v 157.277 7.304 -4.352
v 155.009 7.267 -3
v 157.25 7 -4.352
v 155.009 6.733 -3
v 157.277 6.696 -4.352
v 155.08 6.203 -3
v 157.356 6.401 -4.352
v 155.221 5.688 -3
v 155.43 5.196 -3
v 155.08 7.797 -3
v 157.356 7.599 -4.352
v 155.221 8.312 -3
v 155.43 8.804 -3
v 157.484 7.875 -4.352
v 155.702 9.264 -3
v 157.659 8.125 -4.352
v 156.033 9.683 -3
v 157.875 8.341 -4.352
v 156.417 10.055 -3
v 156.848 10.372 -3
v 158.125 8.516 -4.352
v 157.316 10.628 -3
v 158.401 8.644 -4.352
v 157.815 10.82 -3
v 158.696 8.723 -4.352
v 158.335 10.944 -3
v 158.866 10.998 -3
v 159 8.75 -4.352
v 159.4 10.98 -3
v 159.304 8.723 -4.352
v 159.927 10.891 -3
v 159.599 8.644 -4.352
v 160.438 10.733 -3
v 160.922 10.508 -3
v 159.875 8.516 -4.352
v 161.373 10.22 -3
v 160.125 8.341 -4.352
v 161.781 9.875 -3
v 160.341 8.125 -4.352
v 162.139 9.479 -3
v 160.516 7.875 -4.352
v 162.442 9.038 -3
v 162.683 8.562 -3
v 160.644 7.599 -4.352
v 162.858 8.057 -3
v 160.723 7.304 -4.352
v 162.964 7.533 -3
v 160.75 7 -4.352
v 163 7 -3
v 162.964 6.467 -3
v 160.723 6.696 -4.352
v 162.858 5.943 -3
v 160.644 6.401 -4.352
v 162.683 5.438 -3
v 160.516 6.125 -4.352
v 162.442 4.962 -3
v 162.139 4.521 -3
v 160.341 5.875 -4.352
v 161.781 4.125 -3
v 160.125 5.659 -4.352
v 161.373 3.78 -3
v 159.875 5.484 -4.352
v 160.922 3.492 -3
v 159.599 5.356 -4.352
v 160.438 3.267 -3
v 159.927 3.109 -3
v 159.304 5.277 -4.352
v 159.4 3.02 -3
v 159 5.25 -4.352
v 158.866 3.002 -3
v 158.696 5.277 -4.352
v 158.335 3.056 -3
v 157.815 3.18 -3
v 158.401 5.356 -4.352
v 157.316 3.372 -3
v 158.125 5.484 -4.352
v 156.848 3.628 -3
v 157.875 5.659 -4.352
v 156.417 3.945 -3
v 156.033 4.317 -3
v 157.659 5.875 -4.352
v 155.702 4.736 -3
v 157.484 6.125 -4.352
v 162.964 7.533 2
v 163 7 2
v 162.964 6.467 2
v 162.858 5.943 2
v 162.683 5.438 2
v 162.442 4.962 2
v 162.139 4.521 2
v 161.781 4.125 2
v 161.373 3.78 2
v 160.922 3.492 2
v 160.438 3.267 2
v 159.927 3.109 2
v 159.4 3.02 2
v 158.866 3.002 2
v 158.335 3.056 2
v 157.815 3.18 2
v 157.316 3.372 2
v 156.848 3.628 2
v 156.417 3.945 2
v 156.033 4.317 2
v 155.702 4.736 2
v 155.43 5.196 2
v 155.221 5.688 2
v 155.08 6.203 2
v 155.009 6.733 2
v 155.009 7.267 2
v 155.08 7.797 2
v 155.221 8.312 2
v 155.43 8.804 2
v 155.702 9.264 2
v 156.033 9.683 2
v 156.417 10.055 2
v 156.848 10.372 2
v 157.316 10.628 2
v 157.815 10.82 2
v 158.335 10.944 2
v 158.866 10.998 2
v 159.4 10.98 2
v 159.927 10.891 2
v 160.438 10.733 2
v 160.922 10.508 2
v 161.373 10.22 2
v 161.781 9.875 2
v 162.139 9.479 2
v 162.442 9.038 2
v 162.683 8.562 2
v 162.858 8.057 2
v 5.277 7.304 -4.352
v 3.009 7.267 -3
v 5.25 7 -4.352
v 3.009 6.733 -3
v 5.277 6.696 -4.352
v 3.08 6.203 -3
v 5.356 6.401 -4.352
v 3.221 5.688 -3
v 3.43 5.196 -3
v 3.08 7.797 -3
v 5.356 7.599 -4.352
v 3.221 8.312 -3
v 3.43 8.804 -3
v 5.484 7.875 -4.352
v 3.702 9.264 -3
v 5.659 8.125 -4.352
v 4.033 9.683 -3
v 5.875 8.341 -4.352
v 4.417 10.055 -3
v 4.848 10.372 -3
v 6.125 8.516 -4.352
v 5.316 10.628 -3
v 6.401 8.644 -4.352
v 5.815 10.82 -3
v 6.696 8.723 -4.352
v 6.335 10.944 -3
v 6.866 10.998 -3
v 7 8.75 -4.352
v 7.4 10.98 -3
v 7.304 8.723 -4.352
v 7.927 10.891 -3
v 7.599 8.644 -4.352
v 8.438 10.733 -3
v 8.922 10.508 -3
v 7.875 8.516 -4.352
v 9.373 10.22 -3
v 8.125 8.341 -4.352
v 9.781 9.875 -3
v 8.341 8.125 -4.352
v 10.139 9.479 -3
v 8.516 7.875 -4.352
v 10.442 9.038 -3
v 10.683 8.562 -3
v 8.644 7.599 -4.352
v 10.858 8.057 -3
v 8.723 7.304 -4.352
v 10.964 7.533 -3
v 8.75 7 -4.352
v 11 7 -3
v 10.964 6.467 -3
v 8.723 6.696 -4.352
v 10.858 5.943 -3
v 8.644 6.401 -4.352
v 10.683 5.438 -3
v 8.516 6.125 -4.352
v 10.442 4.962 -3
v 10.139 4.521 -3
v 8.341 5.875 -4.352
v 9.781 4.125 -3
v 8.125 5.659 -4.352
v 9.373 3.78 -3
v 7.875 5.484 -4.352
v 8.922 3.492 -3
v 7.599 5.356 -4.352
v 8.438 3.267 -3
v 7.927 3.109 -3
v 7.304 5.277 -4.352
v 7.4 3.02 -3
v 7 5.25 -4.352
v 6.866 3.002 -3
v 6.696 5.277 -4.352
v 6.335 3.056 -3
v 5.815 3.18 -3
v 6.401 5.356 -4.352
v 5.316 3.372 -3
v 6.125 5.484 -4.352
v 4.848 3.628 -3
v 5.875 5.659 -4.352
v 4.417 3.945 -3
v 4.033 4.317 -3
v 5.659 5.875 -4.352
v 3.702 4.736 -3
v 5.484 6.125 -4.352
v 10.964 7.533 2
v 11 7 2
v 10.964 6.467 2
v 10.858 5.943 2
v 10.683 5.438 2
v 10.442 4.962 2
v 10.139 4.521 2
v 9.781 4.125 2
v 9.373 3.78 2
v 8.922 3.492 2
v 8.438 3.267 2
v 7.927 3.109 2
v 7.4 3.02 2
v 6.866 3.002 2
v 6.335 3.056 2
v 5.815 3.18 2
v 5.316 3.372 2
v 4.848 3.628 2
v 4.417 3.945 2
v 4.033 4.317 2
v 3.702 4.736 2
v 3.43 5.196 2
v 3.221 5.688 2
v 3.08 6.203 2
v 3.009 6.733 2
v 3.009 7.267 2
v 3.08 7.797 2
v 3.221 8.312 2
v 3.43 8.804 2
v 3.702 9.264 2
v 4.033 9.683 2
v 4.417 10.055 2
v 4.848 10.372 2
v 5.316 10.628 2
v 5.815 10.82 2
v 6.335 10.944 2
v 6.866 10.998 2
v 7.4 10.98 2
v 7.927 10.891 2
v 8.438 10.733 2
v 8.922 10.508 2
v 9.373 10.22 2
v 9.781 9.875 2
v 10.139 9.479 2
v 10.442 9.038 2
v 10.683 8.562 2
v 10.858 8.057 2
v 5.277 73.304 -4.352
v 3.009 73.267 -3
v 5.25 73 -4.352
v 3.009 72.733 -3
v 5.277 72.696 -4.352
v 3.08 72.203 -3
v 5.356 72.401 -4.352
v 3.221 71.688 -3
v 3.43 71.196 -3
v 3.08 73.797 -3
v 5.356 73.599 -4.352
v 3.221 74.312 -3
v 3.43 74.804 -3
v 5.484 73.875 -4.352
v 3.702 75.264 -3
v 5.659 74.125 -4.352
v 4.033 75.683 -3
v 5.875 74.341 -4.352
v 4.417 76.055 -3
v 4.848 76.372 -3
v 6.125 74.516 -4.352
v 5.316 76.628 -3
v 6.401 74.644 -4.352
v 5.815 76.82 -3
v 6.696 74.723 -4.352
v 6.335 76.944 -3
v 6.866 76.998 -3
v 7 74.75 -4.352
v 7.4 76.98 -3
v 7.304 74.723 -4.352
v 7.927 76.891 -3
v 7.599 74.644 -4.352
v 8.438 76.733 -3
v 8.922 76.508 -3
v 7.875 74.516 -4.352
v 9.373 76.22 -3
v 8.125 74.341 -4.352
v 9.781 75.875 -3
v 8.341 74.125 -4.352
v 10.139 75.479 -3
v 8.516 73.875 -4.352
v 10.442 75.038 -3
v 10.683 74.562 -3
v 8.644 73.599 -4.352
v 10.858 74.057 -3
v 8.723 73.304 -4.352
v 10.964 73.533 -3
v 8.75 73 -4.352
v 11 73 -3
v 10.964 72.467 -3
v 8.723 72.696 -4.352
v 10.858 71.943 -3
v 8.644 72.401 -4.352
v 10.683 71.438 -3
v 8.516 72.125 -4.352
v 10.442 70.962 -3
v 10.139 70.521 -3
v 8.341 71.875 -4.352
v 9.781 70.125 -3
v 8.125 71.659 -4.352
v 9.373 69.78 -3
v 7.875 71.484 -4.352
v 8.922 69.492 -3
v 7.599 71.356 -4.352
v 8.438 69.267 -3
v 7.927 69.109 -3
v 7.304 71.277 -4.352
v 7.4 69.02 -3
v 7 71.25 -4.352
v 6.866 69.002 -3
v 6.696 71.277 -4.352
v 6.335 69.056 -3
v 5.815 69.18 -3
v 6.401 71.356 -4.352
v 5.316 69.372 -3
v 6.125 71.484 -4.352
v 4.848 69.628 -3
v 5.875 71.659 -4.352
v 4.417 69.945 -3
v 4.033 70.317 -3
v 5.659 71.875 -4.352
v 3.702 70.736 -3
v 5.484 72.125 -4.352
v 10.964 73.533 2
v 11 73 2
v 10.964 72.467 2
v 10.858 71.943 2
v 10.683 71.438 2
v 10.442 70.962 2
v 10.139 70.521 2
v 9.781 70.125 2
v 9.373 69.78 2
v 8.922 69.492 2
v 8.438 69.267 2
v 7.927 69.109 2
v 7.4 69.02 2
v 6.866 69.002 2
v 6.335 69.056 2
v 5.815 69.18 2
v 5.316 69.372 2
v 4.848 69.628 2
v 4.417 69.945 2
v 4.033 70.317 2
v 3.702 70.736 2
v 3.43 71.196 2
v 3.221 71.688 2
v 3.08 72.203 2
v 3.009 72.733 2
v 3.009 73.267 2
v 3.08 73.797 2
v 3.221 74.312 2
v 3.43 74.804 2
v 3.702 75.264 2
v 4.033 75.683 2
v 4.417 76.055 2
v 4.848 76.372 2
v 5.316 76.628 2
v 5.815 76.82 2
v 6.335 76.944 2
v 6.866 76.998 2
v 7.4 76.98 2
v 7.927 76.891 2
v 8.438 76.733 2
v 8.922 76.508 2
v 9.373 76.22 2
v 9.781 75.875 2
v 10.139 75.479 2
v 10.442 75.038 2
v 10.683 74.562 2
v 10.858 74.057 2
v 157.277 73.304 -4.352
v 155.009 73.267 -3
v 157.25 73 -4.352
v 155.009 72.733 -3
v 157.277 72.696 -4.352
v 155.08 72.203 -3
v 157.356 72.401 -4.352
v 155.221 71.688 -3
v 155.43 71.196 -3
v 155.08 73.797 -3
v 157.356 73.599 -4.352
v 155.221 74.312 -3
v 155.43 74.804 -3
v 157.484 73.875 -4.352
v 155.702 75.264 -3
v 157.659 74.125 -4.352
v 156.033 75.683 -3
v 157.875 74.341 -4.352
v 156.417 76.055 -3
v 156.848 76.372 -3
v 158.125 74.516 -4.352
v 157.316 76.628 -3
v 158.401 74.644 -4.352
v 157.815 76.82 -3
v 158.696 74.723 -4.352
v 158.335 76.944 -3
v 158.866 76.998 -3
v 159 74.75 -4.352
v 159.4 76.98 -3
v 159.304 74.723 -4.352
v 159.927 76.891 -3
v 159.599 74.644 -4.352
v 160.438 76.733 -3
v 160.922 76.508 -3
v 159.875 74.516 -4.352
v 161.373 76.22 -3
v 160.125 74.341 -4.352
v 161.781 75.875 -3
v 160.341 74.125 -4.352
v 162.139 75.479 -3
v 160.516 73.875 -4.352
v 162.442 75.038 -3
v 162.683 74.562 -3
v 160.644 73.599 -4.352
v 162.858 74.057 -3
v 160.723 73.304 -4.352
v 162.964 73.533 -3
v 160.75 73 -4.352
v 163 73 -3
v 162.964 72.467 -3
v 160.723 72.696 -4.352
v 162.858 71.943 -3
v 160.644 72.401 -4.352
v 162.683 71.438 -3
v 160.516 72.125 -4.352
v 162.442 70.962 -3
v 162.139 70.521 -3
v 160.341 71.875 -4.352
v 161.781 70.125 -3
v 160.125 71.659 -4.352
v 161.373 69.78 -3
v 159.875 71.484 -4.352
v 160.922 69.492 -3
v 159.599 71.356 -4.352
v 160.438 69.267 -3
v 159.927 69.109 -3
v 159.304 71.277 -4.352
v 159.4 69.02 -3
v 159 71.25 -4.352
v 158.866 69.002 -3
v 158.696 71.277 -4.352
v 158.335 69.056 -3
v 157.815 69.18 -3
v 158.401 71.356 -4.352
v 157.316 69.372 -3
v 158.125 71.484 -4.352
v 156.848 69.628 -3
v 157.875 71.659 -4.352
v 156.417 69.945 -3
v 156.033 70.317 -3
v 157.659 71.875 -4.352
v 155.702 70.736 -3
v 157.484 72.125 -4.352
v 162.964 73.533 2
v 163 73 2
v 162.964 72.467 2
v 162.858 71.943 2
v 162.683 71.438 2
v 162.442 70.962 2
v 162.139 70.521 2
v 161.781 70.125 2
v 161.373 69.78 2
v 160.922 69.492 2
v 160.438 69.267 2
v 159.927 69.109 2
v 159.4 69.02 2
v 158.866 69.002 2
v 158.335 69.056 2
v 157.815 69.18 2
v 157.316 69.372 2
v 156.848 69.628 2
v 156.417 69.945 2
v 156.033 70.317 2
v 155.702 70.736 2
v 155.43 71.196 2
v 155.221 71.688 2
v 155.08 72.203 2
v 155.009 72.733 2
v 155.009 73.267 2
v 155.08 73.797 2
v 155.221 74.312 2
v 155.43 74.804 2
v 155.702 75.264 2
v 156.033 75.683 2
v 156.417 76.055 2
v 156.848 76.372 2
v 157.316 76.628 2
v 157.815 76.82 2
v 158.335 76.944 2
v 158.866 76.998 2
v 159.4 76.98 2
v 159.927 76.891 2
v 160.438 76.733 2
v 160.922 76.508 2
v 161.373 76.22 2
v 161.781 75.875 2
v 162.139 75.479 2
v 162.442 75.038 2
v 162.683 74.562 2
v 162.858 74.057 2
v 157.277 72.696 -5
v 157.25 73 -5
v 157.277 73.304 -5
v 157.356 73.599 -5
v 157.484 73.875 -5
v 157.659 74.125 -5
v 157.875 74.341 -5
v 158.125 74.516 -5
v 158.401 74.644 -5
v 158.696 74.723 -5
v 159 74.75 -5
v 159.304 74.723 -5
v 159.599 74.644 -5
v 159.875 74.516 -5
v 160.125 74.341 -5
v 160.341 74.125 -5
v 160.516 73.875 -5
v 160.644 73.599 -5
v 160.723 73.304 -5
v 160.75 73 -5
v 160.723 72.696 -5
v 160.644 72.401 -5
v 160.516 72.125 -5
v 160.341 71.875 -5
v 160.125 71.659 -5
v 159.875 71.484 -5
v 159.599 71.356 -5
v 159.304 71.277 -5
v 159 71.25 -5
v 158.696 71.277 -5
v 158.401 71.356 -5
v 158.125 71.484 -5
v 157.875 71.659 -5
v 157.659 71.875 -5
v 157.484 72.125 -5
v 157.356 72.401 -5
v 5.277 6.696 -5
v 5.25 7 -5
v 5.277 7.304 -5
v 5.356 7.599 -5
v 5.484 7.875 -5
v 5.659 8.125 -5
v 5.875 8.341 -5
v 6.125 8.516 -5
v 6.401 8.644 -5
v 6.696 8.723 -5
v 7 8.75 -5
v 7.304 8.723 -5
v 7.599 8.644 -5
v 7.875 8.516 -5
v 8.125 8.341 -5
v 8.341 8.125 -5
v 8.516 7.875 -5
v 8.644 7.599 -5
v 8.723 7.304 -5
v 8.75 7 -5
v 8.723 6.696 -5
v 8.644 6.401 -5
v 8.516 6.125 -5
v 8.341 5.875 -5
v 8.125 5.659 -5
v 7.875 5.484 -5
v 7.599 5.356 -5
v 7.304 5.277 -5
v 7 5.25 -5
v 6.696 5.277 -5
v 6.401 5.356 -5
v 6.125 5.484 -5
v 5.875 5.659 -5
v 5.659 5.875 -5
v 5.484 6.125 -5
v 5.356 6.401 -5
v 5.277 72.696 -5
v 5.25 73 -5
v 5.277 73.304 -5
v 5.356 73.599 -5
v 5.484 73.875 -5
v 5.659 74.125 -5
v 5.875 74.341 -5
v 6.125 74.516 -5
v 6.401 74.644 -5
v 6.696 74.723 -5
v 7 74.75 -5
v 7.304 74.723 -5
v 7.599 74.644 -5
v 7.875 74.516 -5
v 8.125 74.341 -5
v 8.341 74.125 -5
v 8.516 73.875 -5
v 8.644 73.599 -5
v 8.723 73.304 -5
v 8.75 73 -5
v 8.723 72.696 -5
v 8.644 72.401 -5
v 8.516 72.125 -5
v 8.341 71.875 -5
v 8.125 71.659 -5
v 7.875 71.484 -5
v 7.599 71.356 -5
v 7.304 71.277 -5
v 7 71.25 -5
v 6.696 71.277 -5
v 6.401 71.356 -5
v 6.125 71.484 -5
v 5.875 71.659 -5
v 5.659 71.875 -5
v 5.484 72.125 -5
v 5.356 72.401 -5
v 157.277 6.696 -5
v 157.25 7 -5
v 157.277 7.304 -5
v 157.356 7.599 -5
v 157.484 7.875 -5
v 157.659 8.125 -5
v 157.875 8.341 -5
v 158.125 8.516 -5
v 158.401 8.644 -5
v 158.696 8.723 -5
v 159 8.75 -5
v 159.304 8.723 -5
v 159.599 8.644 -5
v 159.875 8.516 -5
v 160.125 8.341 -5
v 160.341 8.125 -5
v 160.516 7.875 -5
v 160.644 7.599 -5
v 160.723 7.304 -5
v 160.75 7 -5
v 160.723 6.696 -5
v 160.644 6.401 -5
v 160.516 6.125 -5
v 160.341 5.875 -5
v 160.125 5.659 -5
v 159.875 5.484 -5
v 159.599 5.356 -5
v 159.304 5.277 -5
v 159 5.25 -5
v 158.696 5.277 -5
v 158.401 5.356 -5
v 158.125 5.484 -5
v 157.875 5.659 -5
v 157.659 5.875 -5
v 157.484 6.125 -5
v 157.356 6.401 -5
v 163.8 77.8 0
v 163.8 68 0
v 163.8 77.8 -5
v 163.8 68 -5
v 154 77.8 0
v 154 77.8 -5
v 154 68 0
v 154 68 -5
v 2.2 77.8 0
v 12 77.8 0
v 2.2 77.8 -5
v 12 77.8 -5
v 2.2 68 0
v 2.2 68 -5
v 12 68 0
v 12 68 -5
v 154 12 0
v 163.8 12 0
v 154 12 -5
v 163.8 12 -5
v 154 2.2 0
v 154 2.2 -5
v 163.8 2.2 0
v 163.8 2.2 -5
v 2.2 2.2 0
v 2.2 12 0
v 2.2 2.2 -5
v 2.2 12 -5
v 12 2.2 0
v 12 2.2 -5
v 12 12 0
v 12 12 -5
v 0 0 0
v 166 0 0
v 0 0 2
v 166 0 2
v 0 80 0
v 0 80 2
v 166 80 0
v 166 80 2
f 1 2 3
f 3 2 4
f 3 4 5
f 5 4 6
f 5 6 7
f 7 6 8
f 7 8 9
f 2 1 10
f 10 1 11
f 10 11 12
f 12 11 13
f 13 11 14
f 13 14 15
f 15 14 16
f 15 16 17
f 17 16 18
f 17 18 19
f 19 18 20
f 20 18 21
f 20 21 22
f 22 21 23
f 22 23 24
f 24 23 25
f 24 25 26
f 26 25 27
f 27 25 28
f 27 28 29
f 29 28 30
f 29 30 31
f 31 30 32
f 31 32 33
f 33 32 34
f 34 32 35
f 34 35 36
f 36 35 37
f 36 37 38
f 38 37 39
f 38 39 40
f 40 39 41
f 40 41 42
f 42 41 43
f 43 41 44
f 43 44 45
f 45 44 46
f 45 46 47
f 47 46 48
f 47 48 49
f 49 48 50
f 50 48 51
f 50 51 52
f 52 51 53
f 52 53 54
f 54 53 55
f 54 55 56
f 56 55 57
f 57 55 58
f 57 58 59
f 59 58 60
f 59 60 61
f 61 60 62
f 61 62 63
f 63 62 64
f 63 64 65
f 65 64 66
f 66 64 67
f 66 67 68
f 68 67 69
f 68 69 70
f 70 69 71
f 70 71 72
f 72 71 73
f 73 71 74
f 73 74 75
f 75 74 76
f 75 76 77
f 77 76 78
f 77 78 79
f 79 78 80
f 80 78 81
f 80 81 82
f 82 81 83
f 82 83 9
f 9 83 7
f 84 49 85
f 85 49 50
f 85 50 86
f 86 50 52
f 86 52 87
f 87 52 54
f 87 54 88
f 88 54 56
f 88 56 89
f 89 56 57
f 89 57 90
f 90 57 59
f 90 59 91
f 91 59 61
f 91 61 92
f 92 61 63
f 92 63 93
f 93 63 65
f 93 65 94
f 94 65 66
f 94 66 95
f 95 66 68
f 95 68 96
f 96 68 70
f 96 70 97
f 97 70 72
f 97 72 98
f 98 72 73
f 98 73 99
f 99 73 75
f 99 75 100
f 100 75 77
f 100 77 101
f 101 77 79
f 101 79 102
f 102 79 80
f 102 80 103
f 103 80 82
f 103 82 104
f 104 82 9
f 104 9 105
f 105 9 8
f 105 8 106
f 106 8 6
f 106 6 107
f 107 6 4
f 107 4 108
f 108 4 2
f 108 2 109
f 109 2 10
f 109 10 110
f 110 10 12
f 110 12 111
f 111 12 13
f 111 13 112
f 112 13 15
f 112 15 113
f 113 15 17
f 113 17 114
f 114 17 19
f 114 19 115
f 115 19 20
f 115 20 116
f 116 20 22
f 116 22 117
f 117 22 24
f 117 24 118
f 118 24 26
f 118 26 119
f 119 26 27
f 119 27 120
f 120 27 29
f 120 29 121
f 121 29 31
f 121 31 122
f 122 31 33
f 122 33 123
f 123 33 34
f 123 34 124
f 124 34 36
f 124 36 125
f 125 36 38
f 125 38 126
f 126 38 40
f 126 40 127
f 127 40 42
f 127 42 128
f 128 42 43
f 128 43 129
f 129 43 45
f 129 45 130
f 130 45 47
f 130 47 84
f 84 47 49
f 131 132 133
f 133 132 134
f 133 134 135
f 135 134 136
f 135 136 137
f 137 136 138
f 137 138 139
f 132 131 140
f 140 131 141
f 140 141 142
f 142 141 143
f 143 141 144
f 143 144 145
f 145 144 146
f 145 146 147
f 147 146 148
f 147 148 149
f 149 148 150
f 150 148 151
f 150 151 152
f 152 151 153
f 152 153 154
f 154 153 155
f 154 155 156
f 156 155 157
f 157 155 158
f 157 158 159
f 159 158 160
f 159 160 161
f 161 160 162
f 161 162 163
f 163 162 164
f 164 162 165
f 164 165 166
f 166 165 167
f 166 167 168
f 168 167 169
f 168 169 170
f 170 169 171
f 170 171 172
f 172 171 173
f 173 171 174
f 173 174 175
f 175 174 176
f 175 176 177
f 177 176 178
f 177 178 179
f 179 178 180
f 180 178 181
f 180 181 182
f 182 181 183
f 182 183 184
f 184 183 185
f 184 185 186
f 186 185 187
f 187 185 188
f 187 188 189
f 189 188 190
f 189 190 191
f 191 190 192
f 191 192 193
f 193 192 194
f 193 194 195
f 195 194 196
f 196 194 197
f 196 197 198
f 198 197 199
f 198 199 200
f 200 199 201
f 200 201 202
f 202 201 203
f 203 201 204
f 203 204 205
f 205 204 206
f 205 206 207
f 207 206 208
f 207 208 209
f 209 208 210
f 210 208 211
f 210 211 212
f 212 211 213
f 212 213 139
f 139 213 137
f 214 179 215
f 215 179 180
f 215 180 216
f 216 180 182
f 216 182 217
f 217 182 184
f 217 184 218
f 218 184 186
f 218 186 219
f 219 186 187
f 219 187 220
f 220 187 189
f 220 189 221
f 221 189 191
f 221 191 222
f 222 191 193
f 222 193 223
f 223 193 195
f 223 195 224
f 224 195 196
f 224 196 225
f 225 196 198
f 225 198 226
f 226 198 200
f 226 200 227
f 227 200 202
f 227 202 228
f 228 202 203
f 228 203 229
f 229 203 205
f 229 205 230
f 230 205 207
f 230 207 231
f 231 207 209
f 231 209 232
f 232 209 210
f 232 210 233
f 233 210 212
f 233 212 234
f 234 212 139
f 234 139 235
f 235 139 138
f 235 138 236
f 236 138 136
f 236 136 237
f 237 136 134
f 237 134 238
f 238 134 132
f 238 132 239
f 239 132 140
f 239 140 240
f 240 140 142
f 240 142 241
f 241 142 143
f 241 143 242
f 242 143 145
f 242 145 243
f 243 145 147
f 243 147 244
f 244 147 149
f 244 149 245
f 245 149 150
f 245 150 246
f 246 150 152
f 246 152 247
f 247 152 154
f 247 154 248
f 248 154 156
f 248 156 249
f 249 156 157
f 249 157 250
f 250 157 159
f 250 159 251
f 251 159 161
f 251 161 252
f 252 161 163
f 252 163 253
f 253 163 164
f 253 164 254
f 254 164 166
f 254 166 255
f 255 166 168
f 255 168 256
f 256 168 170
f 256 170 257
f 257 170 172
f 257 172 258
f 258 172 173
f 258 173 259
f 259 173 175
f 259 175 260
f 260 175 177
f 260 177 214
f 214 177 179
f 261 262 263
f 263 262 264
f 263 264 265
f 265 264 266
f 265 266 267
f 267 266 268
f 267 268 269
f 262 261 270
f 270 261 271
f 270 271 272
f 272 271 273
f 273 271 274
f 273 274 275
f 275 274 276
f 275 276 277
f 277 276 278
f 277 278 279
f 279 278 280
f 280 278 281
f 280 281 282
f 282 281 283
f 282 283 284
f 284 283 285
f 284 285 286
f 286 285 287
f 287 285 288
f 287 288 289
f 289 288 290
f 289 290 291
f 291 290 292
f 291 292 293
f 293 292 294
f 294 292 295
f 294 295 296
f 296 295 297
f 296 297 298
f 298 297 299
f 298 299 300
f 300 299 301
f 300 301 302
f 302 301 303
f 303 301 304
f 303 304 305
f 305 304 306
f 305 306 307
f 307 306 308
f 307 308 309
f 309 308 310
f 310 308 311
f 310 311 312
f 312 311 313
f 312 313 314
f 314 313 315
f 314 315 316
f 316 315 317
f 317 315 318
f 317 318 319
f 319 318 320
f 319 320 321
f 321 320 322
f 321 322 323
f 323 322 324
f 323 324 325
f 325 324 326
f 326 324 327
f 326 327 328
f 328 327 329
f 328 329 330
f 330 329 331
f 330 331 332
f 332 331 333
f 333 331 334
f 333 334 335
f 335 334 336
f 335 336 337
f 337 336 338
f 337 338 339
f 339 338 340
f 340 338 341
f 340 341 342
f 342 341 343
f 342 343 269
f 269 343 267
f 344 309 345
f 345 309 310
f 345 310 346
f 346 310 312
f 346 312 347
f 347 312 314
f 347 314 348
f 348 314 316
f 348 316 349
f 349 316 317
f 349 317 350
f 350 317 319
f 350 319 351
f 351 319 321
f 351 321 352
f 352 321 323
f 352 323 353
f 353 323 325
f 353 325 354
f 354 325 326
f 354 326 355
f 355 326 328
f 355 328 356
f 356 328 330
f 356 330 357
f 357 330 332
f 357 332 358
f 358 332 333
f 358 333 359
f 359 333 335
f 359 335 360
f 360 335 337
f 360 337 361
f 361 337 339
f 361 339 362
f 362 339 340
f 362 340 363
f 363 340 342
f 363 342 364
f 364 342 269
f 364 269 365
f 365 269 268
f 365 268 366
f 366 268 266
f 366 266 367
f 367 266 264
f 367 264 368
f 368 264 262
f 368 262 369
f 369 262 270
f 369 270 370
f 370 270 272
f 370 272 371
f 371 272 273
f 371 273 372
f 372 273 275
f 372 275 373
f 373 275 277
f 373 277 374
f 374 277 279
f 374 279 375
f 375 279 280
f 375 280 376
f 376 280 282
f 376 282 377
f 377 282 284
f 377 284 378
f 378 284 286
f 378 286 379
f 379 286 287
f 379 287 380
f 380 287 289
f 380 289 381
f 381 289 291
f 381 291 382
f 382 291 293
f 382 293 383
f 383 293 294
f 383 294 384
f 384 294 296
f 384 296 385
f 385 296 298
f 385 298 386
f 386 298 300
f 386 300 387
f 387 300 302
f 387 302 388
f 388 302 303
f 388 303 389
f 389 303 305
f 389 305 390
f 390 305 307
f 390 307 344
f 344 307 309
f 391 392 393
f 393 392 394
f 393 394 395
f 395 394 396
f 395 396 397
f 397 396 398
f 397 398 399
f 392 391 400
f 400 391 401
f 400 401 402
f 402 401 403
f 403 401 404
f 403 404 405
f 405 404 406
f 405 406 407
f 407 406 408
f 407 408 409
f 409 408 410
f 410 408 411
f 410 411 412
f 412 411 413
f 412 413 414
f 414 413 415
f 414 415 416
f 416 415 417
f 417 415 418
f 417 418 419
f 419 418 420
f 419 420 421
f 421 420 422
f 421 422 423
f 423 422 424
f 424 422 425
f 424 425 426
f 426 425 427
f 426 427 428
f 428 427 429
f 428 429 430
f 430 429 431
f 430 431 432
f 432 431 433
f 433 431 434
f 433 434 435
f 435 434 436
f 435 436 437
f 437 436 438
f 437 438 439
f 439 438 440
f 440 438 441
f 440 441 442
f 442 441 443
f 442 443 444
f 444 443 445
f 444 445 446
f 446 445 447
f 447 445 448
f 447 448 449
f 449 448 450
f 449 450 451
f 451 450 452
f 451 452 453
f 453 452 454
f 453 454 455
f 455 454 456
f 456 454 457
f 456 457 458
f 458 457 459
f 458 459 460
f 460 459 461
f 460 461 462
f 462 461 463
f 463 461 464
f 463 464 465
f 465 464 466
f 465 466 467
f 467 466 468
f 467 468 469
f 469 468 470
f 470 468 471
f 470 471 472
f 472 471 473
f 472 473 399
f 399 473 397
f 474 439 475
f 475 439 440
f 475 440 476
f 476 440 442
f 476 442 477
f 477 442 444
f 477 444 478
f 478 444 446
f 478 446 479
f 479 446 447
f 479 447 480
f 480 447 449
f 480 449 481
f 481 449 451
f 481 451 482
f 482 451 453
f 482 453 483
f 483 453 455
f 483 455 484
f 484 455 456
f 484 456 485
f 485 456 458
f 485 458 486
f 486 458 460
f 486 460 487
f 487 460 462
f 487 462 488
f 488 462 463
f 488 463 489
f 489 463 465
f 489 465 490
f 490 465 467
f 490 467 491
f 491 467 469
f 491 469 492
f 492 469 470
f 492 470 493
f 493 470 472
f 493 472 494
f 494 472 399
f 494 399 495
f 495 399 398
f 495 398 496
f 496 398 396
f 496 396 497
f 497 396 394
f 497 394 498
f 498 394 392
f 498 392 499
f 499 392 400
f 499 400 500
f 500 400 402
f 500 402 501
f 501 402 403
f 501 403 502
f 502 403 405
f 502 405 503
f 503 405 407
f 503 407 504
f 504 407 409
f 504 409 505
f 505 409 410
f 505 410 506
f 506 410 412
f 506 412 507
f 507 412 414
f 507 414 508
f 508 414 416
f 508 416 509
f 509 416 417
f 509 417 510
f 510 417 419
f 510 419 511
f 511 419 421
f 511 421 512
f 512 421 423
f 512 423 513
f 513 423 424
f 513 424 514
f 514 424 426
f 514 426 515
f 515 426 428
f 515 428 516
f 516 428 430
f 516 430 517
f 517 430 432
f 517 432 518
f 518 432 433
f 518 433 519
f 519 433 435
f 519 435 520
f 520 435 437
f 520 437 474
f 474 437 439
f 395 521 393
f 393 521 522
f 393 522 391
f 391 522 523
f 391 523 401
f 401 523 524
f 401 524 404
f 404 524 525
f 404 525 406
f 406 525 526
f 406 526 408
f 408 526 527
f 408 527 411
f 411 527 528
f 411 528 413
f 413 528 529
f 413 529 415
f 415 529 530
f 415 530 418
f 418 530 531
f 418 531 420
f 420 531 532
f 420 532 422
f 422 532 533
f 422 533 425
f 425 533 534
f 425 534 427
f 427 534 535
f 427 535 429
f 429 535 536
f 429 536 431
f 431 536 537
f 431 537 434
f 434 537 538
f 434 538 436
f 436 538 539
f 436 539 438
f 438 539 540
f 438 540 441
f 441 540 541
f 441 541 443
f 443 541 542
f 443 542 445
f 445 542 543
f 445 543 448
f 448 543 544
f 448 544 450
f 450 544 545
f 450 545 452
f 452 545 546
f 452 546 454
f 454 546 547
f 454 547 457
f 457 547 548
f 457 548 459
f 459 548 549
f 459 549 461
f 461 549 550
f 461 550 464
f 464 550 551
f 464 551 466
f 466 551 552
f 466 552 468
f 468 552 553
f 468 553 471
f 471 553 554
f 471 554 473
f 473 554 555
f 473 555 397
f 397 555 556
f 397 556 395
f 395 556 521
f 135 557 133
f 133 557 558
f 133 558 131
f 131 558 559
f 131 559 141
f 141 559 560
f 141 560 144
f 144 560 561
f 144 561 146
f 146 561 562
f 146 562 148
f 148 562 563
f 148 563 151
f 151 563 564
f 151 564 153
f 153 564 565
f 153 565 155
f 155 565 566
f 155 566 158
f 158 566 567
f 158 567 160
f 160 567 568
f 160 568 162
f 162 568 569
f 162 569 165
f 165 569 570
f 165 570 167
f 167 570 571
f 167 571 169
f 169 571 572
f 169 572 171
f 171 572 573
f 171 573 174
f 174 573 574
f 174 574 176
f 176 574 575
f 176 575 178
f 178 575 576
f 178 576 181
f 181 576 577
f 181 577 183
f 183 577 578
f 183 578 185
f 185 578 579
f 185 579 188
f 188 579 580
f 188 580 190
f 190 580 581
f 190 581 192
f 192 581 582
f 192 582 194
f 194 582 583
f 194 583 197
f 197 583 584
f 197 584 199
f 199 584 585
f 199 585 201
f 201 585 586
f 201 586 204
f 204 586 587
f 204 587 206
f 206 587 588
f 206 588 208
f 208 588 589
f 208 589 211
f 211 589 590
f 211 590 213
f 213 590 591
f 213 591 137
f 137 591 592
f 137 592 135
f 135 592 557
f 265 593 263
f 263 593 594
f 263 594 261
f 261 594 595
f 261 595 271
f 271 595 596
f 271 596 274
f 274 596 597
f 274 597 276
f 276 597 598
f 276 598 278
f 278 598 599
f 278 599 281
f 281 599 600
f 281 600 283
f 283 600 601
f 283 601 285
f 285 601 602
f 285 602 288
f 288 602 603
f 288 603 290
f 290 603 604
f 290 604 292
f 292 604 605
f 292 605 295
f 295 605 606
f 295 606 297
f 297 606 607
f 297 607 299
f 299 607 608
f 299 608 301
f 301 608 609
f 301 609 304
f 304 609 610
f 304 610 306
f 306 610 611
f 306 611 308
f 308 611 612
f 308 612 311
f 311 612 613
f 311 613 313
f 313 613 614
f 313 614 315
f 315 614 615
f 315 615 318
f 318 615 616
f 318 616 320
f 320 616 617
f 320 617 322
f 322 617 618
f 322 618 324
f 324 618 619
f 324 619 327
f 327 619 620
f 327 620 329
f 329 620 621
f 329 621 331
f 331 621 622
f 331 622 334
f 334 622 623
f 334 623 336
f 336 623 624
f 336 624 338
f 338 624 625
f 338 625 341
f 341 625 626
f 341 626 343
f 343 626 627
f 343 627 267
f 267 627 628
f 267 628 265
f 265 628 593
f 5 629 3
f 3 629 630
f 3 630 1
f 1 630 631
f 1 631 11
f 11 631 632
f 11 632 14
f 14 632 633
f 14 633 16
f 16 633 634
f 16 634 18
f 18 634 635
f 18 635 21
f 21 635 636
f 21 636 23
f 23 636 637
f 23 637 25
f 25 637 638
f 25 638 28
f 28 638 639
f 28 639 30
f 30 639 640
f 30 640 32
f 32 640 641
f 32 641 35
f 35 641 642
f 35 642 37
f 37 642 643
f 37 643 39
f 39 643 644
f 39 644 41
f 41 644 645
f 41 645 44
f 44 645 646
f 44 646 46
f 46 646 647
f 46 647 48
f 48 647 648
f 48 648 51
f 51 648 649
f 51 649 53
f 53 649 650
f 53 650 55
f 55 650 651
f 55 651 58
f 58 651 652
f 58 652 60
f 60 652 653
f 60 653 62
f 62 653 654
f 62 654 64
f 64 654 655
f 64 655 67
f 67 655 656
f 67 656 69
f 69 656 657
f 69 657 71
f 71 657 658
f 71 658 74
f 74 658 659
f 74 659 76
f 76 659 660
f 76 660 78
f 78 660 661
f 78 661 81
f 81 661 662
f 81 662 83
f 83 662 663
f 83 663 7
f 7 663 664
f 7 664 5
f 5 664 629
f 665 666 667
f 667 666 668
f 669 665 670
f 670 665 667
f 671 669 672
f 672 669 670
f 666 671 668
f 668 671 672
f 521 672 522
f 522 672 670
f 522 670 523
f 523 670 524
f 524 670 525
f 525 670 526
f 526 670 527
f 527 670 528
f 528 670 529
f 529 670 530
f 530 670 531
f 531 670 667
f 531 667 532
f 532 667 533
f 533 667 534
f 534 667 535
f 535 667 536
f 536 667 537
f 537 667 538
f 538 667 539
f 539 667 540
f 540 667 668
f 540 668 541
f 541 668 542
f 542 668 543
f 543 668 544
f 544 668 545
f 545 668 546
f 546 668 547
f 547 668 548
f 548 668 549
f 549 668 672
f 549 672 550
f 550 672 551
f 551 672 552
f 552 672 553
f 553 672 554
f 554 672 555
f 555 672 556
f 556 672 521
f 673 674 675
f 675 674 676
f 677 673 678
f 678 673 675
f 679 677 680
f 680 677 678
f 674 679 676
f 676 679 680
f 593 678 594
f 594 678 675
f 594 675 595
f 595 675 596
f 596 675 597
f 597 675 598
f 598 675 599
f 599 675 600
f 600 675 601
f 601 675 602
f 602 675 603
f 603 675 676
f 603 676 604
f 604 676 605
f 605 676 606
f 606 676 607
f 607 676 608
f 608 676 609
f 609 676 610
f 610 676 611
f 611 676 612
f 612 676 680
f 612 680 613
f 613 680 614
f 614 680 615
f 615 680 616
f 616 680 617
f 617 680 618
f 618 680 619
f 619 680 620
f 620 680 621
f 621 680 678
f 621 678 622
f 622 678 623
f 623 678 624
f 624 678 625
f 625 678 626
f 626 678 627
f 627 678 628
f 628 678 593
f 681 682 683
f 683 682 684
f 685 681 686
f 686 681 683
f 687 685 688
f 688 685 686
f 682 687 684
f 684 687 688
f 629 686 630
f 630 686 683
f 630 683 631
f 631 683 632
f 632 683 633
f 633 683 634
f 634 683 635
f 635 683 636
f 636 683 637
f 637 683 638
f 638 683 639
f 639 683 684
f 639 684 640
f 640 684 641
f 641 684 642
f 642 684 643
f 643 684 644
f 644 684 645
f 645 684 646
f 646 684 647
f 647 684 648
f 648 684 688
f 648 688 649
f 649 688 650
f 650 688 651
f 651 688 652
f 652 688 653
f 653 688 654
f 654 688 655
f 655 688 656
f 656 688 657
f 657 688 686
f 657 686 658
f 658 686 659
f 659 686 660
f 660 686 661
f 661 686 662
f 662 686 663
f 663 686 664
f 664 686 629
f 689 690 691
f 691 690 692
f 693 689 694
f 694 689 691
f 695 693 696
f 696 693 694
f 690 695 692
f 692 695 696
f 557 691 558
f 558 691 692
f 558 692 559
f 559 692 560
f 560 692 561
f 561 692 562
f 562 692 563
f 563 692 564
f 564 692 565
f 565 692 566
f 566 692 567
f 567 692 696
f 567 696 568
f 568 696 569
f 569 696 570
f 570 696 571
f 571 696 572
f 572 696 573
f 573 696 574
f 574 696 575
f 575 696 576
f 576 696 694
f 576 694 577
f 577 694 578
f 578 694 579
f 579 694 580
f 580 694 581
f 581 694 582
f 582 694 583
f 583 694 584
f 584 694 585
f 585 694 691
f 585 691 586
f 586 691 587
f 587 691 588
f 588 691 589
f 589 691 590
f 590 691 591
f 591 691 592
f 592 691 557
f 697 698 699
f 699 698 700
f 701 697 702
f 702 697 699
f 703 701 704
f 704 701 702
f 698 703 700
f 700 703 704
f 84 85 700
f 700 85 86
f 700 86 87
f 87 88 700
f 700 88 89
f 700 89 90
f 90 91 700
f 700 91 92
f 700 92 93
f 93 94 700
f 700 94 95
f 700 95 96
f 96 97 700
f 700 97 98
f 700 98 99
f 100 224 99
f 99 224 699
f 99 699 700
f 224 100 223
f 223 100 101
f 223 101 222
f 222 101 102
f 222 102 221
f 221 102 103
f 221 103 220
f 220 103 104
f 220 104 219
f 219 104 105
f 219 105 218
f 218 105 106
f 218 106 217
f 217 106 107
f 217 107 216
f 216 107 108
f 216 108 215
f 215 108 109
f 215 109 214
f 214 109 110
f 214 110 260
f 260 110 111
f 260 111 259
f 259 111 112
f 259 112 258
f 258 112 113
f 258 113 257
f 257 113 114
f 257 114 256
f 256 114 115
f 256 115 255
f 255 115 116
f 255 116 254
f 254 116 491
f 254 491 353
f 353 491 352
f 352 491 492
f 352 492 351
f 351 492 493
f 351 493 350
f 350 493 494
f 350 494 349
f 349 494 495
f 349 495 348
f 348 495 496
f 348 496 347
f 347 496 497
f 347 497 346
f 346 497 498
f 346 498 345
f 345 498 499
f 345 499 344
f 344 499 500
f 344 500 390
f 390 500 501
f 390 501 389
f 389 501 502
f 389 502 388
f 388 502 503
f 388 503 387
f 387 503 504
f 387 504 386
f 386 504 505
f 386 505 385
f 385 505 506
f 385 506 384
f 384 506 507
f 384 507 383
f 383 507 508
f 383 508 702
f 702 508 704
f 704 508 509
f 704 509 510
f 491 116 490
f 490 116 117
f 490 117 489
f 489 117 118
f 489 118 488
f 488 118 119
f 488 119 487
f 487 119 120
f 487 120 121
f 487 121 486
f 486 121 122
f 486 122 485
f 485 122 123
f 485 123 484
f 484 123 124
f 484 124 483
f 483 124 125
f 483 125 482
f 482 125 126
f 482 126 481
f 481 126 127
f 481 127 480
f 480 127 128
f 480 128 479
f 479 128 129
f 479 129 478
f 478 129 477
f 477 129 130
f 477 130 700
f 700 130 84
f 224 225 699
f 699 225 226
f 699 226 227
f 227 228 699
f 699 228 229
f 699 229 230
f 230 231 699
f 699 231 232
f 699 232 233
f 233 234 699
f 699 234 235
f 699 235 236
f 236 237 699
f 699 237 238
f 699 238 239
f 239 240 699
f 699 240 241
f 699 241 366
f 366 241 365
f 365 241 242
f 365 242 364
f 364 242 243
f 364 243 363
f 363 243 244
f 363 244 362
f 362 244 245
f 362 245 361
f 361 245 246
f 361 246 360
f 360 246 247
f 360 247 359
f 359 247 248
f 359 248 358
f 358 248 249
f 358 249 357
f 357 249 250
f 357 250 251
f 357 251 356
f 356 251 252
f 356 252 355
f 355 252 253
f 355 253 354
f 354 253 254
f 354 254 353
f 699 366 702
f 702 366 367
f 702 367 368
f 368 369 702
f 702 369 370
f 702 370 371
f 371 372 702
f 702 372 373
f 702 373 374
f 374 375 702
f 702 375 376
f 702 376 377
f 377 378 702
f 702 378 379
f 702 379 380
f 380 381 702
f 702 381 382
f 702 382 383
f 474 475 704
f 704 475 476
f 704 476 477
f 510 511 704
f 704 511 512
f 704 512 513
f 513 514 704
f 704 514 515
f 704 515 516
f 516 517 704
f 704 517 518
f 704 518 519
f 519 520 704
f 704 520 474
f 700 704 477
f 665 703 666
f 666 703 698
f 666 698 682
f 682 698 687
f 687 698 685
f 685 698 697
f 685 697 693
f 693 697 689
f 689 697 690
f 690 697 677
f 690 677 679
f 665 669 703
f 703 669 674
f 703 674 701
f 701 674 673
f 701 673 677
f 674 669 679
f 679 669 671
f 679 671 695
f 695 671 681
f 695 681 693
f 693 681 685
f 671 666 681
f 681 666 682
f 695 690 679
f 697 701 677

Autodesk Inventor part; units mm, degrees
ref_plane "YZ Plane" through (0, 0, 0) normal (1, 0, 0) x (0, 1, 0)
ref_plane "XZ Plane" through (0, 0, 0) normal (0, 1, 0) x (-1, 0, 0)
ref_plane "XY Plane" through (0, 0, 0) normal (0, 0, 1) x (1, 0, 0)
sketch "Skizze1" plane through (0, 0, 0) normal (0, 0, 1) x (1, 0, 0)
  line L0 (0, 0) -> (166, 0)
  line L1 (166, 0) -> (166, 80)
  line L2 (166, 80) -> (0, 80)
  line L3 (0, 80) -> (0, 0)
  dimension "d0" = 80
  dimension "d1" = 166
extrude "Extrusion1" add sketch "Skizze1" along normal blind 2
sketch "Skizze2" plane through (0, 0, 0) normal (0, 0, -1) x (-1, 0, 0)
  line L0 (-2.2, 77.8) -> (-12, 77.8)
  line L1 (-12, 77.8) -> (-12, 68)
  line L2 (-12, 68) -> (-2.2, 68)
  line L3 (-2.2, 68) -> (-2.2, 77.8)
  line L4 (0, 80) -> (0, 0) projected
  line L5 (-166, 80) -> (0, 80) projected
  line L6 (0, 80) -> (0, 0) projected
  line L7 (0, 40) -> (18.01, 40)
  line L8 (-166, 80) -> (0, 80) projected
  line L9 (-83, 80) -> (-83, 127.491)
  line L10 (-2.2, 2.2) -> (-12, 2.2)
  line L11 (-12, 2.2) -> (-12, 12)
  line L12 (-12, 12) -> (-2.2, 12)
  line L13 (-2.2, 12) -> (-2.2, 2.2)
  line L14 (-163.8, 77.8) -> (-154, 77.8)
  line L15 (-154, 77.8) -> (-154, 68)
  line L16 (-154, 68) -> (-163.8, 68)
  line L17 (-163.8, 68) -> (-163.8, 77.8)
  line L18 (-166, 80) -> (-166, 0)
  line L19 (-166, 80) -> (-166, 0)
  line L20 (-163.8, 2.2) -> (-154, 2.2)
  line L21 (-154, 2.2) -> (-154, 12)
  line L22 (-154, 12) -> (-163.8, 12)
  line L23 (-163.8, 12) -> (-163.8, 2.2)
  point P0 (-166, 40)
  dimension "d4" = 2.2
  dimension "d5" = 2.2
  dimension "d6" = 9.8
  dimension "d7" = 9.8
  dimension "d8" = 40
extrude "Extrusion2" add sketch "Skizze2" along normal blind 5
sketch "Skizze3" plane through (0, 0, 2) normal (0, 0, 1) x (1, 0, 0)
  line L0 (0, 80) -> (0, 0) projected
  line L1 (0, 0) -> (166, 0) projected
  line L2 (0, 80) -> (0, 0) projected
  line L3 (0, 40) -> (-51.158, 40)
  line L4 (0, 0) -> (166, 0) projected
  line L5 (83, 0) -> (83, -45.9243)
  line L6 (166, 80) -> (166, 0)
  line L7 (166, 0) -> (0, 0)
  line L8 (166, 80) -> (166, 0)
  line L9 (166, 40) -> (217.158, 40)
  line L10 (166, 0) -> (0, 0)
  point P0 (7, 7)
  point P1 (7, 73)
  point P2 (159, 7)
  point P3 (159, 73)
  dimension "d11" = 7
  dimension "d12" = 7
hole "Bohrung1" at (7, 7, 2) at (7, 73, 2) at (159, 73, 2) at (159, 7, 2) direction (0, 0, -1) diameter 3.5 depth 8 tip angle 118
sketch "Skizze4" plane through (0, 0, 2) normal (0, 0, 1) x (1, 0, 0)
  circle A0 centre (7, 7) radius 1.75 projected
  circle A1 centre (7, 73) radius 1.75 projected
  circle A2 centre (159, 7) radius 1.75 projected
  circle A3 centre (159, 73) radius 1.75 projected
  point P0 (0, 0)
hole "Bohrung2" at (7, 7, 2) at (7, 73, 2) at (159, 7, 2) at (159, 73, 2) direction (0, 0, -1) diameter 8 depth 5 tip angle 118
properties part number "TimDeckel"
